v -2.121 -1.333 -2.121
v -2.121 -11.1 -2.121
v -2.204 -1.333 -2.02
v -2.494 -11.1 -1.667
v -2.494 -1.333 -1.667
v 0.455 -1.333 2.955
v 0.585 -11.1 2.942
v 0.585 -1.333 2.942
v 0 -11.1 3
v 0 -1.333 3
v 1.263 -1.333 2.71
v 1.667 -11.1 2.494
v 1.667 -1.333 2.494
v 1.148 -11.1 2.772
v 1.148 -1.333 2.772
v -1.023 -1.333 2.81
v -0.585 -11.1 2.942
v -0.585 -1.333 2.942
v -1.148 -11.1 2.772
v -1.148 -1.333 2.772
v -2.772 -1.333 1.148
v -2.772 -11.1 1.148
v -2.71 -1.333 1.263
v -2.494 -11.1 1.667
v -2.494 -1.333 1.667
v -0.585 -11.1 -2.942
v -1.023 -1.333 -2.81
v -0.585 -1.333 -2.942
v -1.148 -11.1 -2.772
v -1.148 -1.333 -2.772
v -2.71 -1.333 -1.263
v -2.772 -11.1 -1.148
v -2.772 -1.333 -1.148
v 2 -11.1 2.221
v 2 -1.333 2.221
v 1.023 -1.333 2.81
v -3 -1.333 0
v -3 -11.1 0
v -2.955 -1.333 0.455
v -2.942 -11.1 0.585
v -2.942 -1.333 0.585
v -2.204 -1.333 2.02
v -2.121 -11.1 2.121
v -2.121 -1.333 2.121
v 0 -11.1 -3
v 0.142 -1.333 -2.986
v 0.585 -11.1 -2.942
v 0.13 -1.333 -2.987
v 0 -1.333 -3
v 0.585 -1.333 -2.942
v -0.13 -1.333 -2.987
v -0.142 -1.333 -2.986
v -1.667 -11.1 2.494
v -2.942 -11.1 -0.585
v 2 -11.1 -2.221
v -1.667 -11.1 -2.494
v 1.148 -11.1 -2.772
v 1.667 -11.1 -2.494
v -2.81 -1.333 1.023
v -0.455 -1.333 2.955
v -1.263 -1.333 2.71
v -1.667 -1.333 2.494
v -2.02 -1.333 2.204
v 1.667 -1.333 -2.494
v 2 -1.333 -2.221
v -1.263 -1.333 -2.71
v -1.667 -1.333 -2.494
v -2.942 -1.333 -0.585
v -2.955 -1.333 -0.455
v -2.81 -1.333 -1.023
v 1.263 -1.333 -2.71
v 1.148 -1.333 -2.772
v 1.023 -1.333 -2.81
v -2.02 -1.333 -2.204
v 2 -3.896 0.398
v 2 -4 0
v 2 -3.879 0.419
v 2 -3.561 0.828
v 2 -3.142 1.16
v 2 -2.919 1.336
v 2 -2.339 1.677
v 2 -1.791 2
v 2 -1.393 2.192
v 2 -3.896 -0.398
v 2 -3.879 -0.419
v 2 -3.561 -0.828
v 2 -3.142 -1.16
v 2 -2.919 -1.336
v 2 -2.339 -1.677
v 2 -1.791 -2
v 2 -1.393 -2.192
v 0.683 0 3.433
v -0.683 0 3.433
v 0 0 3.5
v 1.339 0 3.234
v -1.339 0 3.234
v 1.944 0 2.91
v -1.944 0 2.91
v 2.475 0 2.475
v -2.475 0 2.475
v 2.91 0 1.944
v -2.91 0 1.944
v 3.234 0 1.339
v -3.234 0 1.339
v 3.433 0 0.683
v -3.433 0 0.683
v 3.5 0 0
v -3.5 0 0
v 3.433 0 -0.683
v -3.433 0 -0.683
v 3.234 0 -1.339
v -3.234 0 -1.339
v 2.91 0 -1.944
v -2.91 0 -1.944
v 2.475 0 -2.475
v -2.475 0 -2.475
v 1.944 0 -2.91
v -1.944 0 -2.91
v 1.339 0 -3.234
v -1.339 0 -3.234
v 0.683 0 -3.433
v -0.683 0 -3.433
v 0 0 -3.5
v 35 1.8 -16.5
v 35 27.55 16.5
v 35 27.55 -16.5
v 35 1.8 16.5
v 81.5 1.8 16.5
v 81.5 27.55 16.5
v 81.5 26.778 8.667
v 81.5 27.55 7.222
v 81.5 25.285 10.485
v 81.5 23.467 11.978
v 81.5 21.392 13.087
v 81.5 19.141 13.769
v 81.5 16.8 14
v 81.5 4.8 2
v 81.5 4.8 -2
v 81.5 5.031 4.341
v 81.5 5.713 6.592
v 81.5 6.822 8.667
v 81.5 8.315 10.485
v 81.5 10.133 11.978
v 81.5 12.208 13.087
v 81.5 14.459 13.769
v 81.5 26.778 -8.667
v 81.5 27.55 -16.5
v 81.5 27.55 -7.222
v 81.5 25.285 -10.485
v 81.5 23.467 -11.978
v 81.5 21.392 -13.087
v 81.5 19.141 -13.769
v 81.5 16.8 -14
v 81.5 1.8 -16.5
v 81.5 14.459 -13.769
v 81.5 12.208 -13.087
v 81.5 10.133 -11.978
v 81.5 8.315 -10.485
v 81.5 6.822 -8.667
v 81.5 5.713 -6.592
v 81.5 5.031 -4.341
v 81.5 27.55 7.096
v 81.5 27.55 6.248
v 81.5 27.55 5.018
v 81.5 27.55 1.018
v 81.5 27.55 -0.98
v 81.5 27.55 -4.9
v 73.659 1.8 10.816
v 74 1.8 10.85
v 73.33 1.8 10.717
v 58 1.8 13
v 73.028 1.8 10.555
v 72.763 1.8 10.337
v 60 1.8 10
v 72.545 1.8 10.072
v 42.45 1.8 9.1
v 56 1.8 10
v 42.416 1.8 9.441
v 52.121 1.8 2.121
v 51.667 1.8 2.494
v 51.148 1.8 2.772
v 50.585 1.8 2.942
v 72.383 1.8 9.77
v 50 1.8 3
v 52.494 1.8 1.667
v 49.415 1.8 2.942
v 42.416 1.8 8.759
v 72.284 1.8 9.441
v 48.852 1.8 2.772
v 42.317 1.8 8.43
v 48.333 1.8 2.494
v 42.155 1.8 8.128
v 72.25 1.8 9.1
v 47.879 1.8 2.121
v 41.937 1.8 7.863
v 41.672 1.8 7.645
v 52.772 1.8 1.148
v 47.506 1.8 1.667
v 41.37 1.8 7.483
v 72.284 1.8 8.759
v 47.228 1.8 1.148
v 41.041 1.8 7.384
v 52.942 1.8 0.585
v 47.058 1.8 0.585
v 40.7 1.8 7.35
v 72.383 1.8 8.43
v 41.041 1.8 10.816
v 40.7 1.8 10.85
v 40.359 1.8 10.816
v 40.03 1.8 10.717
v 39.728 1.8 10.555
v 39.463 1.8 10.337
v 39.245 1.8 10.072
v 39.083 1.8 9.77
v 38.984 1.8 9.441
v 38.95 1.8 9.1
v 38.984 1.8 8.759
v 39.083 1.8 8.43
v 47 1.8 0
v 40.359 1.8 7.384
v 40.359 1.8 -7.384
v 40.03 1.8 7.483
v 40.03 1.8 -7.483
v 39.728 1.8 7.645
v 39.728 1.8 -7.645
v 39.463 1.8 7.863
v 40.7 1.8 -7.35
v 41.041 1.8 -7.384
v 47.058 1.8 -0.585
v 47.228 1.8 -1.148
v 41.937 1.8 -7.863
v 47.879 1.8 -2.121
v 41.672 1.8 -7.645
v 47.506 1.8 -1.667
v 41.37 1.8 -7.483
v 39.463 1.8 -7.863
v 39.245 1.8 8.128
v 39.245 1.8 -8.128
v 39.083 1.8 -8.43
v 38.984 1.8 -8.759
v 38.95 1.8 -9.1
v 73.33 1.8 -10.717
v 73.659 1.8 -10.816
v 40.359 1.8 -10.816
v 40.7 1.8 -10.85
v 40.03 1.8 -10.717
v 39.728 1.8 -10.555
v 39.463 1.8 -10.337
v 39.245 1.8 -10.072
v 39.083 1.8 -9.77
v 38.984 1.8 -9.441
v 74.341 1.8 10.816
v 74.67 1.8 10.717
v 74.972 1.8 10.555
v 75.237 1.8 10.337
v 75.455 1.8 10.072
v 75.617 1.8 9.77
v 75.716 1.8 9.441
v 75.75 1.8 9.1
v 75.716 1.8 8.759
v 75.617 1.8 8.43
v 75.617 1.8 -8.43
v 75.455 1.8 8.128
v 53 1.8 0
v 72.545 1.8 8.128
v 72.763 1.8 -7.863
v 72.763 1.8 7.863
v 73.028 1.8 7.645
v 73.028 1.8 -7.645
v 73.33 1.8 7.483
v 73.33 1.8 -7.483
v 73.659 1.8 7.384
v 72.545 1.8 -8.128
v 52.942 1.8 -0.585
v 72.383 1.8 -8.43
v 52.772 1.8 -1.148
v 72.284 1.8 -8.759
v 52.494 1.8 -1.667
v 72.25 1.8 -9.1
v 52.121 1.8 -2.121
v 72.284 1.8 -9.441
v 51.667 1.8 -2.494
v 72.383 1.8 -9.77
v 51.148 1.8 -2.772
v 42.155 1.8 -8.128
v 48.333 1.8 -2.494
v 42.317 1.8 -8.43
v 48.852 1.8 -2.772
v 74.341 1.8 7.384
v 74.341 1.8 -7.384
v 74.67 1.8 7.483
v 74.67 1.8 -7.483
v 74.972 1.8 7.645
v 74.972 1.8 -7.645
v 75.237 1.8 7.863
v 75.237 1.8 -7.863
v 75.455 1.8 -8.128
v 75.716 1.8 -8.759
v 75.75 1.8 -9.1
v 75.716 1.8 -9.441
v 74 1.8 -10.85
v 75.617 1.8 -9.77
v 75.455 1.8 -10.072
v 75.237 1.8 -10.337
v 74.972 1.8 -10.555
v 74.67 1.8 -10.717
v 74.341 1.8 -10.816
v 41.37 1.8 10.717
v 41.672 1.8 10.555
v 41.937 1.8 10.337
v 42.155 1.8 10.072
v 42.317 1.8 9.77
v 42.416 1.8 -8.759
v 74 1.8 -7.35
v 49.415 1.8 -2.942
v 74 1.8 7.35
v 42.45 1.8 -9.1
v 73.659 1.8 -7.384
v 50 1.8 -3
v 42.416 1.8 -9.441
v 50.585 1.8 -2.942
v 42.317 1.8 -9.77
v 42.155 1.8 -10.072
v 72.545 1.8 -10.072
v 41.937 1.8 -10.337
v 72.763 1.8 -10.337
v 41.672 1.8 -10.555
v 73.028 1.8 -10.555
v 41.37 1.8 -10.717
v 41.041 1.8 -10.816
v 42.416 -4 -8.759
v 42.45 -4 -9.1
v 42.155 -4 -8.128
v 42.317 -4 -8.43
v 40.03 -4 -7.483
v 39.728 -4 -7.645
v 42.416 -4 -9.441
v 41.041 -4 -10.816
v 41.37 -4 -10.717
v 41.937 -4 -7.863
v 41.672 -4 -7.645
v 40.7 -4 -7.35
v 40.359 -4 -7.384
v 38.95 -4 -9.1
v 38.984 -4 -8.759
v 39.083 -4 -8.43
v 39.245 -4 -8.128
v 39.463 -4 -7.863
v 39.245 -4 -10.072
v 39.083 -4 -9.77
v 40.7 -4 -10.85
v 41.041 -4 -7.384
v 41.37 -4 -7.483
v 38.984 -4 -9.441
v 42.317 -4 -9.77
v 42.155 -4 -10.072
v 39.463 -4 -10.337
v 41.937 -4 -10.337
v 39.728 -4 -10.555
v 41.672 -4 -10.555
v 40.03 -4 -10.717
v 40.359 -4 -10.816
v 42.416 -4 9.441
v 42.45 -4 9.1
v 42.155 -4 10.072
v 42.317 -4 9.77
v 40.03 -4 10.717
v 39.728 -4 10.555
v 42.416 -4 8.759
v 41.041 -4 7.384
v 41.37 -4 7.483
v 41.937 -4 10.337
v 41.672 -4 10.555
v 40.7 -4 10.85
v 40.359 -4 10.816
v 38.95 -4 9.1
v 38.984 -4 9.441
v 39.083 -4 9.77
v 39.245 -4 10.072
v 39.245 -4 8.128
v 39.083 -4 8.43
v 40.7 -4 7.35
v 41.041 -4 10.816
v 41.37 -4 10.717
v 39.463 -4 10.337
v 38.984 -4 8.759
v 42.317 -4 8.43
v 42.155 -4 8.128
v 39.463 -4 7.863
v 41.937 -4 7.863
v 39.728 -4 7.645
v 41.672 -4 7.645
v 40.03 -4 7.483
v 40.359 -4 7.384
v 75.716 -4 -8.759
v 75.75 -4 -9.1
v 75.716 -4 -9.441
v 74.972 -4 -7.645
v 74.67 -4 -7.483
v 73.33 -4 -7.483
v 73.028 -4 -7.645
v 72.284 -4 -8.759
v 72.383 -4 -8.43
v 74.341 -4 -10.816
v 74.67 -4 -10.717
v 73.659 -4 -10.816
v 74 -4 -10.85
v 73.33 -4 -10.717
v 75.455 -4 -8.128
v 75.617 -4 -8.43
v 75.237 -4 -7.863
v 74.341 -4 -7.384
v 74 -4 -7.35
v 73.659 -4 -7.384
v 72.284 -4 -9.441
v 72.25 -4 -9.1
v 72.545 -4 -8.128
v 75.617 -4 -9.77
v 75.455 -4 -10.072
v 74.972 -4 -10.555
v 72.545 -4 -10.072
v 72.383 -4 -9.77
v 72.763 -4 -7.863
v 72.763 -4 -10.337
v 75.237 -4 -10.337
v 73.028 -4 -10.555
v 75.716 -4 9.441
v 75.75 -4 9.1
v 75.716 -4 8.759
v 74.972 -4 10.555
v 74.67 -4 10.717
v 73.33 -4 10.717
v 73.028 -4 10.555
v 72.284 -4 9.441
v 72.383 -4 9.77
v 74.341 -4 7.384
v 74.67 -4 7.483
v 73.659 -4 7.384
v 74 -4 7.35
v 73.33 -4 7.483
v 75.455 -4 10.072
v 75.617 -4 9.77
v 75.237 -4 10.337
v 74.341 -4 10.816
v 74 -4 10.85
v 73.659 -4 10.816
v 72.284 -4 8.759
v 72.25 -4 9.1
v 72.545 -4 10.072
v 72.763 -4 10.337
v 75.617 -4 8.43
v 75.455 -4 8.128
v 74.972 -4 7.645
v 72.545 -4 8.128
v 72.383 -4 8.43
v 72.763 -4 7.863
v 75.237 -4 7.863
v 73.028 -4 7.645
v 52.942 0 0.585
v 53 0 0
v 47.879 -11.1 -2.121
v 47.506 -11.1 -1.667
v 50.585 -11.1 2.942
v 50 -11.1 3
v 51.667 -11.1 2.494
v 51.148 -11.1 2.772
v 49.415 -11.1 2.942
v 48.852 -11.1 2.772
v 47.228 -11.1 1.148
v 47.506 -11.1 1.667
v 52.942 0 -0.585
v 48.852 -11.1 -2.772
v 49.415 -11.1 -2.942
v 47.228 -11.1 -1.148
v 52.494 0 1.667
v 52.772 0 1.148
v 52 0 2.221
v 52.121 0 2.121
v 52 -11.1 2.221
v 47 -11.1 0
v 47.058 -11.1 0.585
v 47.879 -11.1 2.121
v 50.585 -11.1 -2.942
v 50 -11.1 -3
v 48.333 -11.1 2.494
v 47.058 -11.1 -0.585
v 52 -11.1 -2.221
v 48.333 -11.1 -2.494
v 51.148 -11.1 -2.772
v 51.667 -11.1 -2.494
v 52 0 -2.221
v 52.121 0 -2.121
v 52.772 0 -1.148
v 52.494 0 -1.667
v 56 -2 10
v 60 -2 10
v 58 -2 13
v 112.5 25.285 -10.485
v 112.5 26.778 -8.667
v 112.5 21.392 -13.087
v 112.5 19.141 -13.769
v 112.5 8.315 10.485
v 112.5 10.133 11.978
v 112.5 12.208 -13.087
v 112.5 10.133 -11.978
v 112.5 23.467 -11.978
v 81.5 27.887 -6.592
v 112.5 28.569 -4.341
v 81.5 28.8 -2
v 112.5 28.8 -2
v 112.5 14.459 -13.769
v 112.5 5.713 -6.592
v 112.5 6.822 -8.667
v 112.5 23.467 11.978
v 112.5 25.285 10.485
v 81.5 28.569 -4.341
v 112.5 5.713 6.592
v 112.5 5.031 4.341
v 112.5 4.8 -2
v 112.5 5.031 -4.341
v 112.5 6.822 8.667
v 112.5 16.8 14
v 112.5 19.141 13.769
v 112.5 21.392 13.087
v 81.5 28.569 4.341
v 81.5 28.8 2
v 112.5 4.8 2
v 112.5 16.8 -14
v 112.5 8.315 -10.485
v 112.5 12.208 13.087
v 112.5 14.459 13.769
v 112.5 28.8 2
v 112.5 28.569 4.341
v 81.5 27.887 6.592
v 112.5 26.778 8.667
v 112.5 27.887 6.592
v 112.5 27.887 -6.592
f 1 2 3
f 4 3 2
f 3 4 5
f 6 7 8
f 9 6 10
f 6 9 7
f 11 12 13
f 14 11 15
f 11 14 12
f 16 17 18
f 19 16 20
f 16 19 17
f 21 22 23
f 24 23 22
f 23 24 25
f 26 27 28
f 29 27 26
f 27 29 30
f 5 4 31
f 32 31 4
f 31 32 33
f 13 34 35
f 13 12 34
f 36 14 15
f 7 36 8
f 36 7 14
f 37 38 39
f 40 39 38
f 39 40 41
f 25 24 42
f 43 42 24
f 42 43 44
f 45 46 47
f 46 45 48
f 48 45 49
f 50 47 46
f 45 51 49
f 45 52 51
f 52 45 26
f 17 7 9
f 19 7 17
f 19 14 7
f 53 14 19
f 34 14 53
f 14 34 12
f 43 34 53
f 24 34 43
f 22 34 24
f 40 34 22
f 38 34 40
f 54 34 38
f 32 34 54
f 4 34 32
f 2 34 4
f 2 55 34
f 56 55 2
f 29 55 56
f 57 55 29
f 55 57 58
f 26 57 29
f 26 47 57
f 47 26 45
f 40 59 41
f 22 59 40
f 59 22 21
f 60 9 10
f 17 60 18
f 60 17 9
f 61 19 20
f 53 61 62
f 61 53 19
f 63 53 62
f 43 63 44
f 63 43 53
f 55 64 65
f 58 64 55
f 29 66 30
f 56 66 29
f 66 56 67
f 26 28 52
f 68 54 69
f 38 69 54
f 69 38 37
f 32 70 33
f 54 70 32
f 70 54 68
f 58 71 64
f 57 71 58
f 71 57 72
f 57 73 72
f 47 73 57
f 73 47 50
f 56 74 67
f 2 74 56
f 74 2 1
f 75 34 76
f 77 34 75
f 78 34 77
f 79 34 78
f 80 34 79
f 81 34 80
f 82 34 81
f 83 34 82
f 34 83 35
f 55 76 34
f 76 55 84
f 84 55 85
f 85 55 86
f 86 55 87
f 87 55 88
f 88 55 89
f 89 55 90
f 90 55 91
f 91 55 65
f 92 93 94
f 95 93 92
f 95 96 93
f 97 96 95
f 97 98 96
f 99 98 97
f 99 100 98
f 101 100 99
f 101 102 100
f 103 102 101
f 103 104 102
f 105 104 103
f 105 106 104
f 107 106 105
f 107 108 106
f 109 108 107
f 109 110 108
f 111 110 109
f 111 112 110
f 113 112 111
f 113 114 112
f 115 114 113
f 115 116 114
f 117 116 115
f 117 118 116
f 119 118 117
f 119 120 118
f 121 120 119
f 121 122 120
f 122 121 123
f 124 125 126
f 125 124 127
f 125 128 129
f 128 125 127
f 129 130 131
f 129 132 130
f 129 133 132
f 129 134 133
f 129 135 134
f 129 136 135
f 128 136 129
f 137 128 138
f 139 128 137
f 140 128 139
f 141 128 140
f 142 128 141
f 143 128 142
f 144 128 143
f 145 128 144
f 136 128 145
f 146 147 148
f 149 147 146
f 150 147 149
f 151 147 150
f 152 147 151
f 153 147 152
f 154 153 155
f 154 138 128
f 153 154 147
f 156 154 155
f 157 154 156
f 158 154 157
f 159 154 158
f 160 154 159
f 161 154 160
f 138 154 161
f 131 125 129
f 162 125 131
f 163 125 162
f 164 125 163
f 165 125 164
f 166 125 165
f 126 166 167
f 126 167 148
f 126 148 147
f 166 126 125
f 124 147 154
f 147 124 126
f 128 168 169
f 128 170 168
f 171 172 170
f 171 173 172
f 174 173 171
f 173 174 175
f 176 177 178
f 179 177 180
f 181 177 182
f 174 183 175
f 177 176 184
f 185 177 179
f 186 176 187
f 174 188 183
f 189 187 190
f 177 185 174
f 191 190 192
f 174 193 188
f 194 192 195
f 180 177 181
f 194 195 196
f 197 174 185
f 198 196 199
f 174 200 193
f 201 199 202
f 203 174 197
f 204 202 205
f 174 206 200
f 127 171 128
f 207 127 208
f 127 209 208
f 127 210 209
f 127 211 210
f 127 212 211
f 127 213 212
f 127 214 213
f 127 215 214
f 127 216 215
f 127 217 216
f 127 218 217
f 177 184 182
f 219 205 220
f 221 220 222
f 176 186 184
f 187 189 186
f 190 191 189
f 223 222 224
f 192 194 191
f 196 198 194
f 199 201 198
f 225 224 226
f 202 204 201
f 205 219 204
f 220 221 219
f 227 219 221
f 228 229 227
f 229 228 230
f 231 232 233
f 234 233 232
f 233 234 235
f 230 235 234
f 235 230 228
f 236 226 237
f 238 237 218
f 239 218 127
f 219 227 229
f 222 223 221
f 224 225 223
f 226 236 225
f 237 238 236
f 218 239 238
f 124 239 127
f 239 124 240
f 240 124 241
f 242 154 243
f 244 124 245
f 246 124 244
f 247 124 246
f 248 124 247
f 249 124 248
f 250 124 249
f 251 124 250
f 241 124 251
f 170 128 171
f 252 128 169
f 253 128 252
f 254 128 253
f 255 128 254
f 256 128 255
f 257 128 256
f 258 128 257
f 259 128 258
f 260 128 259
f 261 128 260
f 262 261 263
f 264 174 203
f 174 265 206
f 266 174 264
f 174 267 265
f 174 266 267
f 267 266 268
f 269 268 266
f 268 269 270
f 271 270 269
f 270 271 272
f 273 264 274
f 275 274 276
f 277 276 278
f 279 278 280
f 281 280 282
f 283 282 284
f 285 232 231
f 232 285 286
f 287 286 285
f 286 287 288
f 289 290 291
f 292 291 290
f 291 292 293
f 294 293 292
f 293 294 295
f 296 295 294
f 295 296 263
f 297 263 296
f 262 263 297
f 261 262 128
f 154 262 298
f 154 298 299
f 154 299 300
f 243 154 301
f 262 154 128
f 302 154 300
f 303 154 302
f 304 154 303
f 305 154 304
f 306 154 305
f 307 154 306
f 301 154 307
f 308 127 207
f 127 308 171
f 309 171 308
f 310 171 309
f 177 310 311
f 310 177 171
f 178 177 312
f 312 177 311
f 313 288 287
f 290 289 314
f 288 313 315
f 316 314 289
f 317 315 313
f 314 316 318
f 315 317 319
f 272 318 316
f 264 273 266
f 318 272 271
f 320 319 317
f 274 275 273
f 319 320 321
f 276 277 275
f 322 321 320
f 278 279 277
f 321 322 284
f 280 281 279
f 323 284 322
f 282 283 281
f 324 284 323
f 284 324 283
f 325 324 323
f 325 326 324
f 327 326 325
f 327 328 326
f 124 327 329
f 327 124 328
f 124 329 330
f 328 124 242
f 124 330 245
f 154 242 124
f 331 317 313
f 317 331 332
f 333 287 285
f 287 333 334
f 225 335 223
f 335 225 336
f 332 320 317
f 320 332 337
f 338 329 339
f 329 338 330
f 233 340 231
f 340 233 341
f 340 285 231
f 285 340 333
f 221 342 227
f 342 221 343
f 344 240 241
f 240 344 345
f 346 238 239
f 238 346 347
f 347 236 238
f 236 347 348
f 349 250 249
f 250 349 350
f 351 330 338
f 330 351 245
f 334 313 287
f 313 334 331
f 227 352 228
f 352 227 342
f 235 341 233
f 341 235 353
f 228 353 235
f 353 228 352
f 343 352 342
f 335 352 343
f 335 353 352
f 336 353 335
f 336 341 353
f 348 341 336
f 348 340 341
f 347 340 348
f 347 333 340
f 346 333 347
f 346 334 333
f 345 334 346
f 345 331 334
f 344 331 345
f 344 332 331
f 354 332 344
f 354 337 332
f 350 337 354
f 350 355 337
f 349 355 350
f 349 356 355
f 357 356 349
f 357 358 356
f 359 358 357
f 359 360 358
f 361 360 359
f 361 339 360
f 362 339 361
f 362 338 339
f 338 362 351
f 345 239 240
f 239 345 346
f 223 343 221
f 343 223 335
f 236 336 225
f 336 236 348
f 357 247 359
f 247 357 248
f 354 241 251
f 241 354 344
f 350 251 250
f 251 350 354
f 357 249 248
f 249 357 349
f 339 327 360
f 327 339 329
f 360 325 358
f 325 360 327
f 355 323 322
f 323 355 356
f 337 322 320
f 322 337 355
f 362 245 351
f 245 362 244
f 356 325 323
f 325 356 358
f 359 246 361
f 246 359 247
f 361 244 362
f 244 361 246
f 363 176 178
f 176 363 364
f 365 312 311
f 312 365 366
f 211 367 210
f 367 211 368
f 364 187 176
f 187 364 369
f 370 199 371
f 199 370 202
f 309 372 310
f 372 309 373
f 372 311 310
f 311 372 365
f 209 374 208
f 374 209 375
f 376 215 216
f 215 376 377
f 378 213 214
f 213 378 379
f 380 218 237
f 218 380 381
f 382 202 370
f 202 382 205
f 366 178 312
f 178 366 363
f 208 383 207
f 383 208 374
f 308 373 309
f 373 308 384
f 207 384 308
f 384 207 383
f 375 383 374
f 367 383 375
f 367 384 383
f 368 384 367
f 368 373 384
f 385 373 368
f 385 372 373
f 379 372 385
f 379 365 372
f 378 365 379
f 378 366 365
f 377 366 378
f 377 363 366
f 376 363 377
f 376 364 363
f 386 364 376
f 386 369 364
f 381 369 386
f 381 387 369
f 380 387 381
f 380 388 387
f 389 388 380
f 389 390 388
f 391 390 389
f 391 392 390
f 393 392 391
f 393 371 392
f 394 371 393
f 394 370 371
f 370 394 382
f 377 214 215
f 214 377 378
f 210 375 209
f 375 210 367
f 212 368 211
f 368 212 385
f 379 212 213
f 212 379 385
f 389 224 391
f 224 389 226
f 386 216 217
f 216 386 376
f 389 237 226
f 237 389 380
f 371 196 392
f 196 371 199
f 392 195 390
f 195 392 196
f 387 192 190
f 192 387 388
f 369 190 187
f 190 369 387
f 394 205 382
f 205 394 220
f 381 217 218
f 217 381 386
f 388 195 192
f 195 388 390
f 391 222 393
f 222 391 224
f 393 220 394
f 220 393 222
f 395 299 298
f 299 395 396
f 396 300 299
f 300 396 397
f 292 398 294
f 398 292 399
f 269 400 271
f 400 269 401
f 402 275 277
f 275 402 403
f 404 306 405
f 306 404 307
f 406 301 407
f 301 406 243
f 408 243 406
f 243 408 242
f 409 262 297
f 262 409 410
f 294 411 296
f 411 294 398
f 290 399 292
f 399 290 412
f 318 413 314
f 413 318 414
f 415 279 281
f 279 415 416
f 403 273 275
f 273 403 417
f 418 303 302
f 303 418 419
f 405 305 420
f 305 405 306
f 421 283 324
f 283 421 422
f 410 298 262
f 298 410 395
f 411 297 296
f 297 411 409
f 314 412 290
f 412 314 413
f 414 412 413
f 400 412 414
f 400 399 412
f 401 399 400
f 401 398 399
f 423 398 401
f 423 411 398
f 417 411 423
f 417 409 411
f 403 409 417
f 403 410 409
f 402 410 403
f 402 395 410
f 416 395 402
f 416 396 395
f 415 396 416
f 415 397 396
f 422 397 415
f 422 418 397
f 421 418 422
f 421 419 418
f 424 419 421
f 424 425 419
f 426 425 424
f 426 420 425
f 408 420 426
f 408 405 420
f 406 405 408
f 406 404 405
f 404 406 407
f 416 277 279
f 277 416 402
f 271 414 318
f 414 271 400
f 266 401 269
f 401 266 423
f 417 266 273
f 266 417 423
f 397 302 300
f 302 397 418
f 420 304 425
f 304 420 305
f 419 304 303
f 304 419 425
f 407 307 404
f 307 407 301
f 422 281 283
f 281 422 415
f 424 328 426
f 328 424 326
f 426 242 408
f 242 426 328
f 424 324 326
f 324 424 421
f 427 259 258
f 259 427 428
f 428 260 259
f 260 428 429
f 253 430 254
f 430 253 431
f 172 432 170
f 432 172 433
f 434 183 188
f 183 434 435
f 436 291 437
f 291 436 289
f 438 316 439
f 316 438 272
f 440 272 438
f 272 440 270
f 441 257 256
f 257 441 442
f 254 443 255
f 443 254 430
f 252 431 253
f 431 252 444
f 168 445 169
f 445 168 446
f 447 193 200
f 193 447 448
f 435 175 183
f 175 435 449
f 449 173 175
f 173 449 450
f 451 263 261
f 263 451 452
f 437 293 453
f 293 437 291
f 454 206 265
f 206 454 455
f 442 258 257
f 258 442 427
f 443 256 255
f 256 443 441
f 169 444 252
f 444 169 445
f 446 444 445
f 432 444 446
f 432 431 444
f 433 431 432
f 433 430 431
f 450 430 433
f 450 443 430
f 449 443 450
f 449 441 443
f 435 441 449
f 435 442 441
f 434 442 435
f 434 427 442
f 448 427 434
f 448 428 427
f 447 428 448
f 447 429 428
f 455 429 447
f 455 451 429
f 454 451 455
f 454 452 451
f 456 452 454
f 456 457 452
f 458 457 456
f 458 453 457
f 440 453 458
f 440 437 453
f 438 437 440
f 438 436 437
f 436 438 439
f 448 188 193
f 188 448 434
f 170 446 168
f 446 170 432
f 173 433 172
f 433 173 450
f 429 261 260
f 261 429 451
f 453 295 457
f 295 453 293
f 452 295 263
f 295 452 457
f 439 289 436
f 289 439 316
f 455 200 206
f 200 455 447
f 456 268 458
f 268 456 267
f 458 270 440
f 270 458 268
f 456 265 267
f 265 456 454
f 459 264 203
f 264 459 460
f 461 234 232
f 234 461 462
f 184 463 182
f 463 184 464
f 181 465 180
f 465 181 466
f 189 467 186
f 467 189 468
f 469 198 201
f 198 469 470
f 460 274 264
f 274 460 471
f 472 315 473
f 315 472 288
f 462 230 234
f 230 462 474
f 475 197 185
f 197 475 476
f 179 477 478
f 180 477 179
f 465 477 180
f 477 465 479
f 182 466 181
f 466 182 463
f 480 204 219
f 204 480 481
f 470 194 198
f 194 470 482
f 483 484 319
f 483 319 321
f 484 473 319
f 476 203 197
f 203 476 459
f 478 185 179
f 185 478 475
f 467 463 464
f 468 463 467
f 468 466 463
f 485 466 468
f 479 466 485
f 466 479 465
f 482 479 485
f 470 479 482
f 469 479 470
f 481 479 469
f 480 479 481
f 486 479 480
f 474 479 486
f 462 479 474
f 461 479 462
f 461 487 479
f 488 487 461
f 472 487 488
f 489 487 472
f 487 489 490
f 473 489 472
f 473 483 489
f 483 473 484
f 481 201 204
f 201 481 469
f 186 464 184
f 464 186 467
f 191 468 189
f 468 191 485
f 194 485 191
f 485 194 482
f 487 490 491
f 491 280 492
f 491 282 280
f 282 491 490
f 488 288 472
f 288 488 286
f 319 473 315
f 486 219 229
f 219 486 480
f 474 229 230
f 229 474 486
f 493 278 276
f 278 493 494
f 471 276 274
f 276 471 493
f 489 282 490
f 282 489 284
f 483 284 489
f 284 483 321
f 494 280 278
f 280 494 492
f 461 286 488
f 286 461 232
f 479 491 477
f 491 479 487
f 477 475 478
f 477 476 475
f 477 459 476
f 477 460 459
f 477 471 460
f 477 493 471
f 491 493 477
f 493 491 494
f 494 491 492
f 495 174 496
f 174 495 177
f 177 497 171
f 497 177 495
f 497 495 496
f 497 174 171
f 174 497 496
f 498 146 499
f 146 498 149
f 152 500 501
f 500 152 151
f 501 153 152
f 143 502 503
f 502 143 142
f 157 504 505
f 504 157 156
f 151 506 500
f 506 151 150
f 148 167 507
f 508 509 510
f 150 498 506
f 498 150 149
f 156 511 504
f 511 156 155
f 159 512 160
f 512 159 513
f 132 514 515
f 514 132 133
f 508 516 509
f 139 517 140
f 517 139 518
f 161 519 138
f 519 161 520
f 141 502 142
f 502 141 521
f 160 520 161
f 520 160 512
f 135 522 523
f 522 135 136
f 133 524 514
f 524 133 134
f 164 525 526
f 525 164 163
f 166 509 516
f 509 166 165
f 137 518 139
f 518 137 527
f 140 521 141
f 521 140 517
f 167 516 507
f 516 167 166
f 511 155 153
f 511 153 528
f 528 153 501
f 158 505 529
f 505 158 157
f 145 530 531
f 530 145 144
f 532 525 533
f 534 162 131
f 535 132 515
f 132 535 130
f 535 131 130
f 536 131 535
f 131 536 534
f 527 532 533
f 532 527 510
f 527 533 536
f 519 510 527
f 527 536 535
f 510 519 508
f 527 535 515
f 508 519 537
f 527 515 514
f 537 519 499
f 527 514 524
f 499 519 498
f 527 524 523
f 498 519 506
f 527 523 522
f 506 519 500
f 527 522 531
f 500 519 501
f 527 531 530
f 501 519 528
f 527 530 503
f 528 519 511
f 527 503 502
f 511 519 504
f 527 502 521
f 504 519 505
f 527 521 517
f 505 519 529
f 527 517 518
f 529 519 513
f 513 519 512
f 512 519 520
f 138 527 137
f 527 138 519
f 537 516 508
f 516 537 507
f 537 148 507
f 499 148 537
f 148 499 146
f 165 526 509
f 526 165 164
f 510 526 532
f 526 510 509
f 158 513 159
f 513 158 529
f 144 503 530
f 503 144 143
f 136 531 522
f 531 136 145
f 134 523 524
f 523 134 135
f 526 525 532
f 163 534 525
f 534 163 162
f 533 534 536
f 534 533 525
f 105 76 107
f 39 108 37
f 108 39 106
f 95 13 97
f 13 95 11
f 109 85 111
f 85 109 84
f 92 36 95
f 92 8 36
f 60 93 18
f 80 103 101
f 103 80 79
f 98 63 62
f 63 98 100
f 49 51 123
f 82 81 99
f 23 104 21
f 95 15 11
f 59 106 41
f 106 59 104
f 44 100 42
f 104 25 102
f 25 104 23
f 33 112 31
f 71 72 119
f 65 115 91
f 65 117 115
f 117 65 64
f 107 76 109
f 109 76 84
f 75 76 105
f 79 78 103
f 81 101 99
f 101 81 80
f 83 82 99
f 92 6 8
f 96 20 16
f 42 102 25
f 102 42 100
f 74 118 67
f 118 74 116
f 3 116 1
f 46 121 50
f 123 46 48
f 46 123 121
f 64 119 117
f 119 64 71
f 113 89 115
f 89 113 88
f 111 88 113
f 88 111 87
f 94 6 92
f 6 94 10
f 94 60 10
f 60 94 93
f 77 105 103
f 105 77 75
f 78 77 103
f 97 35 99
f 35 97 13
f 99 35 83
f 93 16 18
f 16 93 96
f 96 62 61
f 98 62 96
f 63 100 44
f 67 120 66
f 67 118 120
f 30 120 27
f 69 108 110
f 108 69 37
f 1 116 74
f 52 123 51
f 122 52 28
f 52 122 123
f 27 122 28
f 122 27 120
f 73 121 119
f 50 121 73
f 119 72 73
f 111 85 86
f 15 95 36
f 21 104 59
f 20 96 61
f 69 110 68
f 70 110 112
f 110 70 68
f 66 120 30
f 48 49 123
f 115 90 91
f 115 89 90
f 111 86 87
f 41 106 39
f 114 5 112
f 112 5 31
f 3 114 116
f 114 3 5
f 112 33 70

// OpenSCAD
// file: zwl_fp180ino_constants.scad
SHAFT_OFFSET = 15;

UNUSABLE_SHAFT_LENGTH = 1.8;
USABLE_SHAFT_LENGTH   = 11.1;
SHAFT_DIAMETER        = 6;

MOTOR_BOX_HEIGHT = 33;
MOTOR_BOX_WIDTH  = 46.5;
MOTOR_BOX_DEPTH  = 25.75;
// main file
include <zwl_fp180ino_constants.scad>
/*
 *  Don't know exactly what this motor is, but it says ZWL-FP180ino on it
 *
 */
 
translate([50,0,0])
motor($fn=32);

shaftSocket($fn=32);

/*
 * Draws the basic outline of the motor, sized to be subtracted from other parts.
 * Centered on the beginning of 'usable' part of the shaft.
 * There's an enlarged cutout for the cylinder that sllows parts using this to mirrored.
 * The four other protusions make space for correctly placed bolts.
 */
module motor() {
  color("silver") {
    motor_box();
    
    shaft(
      USABLE_SHAFT_LENGTH,
      UNUSABLE_SHAFT_LENGTH,
      SHAFT_DIAMETER
    );
    
    translate([8,4,10])
    scale([2,3,3])
    arrow();
    
    cylH = 31;
    cylD = 24;
    hull() {
      translate([
        MOTOR_BOX_WIDTH-SHAFT_OFFSET,
        UNUSABLE_SHAFT_LENGTH+cylD/2+3,
        MOTOR_BOX_HEIGHT/2 - cylD/2 - 2.5
      ])
      rotate([0,90,0])
      cylinder(h=cylH,r=cylD/2);
      translate([
        MOTOR_BOX_WIDTH-SHAFT_OFFSET,
        UNUSABLE_SHAFT_LENGTH+cylD/2+3,
        -MOTOR_BOX_HEIGHT/2 + cylD/2 + 2.5
      ])
      rotate([0,90,0])
      cylinder(h=cylH,r=cylD/2);
    }
  }
}

/*
 * The "usable" part of the shaft, sized for subtraction to make a socket.
 * The opening of the socket is widened a bit for easier assembly.
 */
module shaftSocket(diameter=SHAFT_DIAMETER) {
  color("grey") {
    intersection() {
      shaft(USABLE_SHAFT_LENGTH,
        UNUSABLE_SHAFT_LENGTH,
        diameter
      );
      translate([-8,-16,-8])
      cube([16,16,16]);
    }
    rotate([90,0,0])
    cylinder(h=4, r2=2, r1=(diameter+1)/2);
  }
}


module motor_box() {
  m3radius = 3.5/2;
  translate([-SHAFT_OFFSET, UNUSABLE_SHAFT_LENGTH, -MOTOR_BOX_HEIGHT/2])
  cube([MOTOR_BOX_WIDTH, MOTOR_BOX_DEPTH, MOTOR_BOX_HEIGHT]);

  translate([-9.3,4,-9.1])
  rotate([90,0,0])
  cylinder(h=8, r=m3radius);
  
  translate([-9.3,4,9.1])
  rotate([90,0,0])
  cylinder(h=8, r=m3radius);
  
  translate([24,4,-9.1])
  rotate([90,0,0]) 
  cylinder(h=8, r=m3radius);

  translate([24,4,9.1])
  rotate([90,0,0])
  cylinder(h=8, r=m3radius);
}

module shaft() {
  difference() {
    translate([0,UNUSABLE_SHAFT_LENGTH,0])
    rotate([90,0,0])
    cylinder(h=USABLE_SHAFT_LENGTH + UNUSABLE_SHAFT_LENGTH,r=SHAFT_DIAMETER/2);
    translate([2,-USABLE_SHAFT_LENGTH,-3])
    cube([3,USABLE_SHAFT_LENGTH,6]);
  }
}

module shaft(usableLength, unusableLength, diameter) {
  difference() {
    translate([0,unusableLength,0])
    rotate([90,0,0])
    cylinder(h=usableLength + unusableLength,r=diameter/2);
    translate([2,-usableLength,-3])
    cube([3,usableLength,6]);
  }
}

module arrow() {
  rotate([90,0,0])
  linear_extrude(2)
  polygon([[0,0],[-1,0],[0,1],[1,0],[0,0]]);
}
